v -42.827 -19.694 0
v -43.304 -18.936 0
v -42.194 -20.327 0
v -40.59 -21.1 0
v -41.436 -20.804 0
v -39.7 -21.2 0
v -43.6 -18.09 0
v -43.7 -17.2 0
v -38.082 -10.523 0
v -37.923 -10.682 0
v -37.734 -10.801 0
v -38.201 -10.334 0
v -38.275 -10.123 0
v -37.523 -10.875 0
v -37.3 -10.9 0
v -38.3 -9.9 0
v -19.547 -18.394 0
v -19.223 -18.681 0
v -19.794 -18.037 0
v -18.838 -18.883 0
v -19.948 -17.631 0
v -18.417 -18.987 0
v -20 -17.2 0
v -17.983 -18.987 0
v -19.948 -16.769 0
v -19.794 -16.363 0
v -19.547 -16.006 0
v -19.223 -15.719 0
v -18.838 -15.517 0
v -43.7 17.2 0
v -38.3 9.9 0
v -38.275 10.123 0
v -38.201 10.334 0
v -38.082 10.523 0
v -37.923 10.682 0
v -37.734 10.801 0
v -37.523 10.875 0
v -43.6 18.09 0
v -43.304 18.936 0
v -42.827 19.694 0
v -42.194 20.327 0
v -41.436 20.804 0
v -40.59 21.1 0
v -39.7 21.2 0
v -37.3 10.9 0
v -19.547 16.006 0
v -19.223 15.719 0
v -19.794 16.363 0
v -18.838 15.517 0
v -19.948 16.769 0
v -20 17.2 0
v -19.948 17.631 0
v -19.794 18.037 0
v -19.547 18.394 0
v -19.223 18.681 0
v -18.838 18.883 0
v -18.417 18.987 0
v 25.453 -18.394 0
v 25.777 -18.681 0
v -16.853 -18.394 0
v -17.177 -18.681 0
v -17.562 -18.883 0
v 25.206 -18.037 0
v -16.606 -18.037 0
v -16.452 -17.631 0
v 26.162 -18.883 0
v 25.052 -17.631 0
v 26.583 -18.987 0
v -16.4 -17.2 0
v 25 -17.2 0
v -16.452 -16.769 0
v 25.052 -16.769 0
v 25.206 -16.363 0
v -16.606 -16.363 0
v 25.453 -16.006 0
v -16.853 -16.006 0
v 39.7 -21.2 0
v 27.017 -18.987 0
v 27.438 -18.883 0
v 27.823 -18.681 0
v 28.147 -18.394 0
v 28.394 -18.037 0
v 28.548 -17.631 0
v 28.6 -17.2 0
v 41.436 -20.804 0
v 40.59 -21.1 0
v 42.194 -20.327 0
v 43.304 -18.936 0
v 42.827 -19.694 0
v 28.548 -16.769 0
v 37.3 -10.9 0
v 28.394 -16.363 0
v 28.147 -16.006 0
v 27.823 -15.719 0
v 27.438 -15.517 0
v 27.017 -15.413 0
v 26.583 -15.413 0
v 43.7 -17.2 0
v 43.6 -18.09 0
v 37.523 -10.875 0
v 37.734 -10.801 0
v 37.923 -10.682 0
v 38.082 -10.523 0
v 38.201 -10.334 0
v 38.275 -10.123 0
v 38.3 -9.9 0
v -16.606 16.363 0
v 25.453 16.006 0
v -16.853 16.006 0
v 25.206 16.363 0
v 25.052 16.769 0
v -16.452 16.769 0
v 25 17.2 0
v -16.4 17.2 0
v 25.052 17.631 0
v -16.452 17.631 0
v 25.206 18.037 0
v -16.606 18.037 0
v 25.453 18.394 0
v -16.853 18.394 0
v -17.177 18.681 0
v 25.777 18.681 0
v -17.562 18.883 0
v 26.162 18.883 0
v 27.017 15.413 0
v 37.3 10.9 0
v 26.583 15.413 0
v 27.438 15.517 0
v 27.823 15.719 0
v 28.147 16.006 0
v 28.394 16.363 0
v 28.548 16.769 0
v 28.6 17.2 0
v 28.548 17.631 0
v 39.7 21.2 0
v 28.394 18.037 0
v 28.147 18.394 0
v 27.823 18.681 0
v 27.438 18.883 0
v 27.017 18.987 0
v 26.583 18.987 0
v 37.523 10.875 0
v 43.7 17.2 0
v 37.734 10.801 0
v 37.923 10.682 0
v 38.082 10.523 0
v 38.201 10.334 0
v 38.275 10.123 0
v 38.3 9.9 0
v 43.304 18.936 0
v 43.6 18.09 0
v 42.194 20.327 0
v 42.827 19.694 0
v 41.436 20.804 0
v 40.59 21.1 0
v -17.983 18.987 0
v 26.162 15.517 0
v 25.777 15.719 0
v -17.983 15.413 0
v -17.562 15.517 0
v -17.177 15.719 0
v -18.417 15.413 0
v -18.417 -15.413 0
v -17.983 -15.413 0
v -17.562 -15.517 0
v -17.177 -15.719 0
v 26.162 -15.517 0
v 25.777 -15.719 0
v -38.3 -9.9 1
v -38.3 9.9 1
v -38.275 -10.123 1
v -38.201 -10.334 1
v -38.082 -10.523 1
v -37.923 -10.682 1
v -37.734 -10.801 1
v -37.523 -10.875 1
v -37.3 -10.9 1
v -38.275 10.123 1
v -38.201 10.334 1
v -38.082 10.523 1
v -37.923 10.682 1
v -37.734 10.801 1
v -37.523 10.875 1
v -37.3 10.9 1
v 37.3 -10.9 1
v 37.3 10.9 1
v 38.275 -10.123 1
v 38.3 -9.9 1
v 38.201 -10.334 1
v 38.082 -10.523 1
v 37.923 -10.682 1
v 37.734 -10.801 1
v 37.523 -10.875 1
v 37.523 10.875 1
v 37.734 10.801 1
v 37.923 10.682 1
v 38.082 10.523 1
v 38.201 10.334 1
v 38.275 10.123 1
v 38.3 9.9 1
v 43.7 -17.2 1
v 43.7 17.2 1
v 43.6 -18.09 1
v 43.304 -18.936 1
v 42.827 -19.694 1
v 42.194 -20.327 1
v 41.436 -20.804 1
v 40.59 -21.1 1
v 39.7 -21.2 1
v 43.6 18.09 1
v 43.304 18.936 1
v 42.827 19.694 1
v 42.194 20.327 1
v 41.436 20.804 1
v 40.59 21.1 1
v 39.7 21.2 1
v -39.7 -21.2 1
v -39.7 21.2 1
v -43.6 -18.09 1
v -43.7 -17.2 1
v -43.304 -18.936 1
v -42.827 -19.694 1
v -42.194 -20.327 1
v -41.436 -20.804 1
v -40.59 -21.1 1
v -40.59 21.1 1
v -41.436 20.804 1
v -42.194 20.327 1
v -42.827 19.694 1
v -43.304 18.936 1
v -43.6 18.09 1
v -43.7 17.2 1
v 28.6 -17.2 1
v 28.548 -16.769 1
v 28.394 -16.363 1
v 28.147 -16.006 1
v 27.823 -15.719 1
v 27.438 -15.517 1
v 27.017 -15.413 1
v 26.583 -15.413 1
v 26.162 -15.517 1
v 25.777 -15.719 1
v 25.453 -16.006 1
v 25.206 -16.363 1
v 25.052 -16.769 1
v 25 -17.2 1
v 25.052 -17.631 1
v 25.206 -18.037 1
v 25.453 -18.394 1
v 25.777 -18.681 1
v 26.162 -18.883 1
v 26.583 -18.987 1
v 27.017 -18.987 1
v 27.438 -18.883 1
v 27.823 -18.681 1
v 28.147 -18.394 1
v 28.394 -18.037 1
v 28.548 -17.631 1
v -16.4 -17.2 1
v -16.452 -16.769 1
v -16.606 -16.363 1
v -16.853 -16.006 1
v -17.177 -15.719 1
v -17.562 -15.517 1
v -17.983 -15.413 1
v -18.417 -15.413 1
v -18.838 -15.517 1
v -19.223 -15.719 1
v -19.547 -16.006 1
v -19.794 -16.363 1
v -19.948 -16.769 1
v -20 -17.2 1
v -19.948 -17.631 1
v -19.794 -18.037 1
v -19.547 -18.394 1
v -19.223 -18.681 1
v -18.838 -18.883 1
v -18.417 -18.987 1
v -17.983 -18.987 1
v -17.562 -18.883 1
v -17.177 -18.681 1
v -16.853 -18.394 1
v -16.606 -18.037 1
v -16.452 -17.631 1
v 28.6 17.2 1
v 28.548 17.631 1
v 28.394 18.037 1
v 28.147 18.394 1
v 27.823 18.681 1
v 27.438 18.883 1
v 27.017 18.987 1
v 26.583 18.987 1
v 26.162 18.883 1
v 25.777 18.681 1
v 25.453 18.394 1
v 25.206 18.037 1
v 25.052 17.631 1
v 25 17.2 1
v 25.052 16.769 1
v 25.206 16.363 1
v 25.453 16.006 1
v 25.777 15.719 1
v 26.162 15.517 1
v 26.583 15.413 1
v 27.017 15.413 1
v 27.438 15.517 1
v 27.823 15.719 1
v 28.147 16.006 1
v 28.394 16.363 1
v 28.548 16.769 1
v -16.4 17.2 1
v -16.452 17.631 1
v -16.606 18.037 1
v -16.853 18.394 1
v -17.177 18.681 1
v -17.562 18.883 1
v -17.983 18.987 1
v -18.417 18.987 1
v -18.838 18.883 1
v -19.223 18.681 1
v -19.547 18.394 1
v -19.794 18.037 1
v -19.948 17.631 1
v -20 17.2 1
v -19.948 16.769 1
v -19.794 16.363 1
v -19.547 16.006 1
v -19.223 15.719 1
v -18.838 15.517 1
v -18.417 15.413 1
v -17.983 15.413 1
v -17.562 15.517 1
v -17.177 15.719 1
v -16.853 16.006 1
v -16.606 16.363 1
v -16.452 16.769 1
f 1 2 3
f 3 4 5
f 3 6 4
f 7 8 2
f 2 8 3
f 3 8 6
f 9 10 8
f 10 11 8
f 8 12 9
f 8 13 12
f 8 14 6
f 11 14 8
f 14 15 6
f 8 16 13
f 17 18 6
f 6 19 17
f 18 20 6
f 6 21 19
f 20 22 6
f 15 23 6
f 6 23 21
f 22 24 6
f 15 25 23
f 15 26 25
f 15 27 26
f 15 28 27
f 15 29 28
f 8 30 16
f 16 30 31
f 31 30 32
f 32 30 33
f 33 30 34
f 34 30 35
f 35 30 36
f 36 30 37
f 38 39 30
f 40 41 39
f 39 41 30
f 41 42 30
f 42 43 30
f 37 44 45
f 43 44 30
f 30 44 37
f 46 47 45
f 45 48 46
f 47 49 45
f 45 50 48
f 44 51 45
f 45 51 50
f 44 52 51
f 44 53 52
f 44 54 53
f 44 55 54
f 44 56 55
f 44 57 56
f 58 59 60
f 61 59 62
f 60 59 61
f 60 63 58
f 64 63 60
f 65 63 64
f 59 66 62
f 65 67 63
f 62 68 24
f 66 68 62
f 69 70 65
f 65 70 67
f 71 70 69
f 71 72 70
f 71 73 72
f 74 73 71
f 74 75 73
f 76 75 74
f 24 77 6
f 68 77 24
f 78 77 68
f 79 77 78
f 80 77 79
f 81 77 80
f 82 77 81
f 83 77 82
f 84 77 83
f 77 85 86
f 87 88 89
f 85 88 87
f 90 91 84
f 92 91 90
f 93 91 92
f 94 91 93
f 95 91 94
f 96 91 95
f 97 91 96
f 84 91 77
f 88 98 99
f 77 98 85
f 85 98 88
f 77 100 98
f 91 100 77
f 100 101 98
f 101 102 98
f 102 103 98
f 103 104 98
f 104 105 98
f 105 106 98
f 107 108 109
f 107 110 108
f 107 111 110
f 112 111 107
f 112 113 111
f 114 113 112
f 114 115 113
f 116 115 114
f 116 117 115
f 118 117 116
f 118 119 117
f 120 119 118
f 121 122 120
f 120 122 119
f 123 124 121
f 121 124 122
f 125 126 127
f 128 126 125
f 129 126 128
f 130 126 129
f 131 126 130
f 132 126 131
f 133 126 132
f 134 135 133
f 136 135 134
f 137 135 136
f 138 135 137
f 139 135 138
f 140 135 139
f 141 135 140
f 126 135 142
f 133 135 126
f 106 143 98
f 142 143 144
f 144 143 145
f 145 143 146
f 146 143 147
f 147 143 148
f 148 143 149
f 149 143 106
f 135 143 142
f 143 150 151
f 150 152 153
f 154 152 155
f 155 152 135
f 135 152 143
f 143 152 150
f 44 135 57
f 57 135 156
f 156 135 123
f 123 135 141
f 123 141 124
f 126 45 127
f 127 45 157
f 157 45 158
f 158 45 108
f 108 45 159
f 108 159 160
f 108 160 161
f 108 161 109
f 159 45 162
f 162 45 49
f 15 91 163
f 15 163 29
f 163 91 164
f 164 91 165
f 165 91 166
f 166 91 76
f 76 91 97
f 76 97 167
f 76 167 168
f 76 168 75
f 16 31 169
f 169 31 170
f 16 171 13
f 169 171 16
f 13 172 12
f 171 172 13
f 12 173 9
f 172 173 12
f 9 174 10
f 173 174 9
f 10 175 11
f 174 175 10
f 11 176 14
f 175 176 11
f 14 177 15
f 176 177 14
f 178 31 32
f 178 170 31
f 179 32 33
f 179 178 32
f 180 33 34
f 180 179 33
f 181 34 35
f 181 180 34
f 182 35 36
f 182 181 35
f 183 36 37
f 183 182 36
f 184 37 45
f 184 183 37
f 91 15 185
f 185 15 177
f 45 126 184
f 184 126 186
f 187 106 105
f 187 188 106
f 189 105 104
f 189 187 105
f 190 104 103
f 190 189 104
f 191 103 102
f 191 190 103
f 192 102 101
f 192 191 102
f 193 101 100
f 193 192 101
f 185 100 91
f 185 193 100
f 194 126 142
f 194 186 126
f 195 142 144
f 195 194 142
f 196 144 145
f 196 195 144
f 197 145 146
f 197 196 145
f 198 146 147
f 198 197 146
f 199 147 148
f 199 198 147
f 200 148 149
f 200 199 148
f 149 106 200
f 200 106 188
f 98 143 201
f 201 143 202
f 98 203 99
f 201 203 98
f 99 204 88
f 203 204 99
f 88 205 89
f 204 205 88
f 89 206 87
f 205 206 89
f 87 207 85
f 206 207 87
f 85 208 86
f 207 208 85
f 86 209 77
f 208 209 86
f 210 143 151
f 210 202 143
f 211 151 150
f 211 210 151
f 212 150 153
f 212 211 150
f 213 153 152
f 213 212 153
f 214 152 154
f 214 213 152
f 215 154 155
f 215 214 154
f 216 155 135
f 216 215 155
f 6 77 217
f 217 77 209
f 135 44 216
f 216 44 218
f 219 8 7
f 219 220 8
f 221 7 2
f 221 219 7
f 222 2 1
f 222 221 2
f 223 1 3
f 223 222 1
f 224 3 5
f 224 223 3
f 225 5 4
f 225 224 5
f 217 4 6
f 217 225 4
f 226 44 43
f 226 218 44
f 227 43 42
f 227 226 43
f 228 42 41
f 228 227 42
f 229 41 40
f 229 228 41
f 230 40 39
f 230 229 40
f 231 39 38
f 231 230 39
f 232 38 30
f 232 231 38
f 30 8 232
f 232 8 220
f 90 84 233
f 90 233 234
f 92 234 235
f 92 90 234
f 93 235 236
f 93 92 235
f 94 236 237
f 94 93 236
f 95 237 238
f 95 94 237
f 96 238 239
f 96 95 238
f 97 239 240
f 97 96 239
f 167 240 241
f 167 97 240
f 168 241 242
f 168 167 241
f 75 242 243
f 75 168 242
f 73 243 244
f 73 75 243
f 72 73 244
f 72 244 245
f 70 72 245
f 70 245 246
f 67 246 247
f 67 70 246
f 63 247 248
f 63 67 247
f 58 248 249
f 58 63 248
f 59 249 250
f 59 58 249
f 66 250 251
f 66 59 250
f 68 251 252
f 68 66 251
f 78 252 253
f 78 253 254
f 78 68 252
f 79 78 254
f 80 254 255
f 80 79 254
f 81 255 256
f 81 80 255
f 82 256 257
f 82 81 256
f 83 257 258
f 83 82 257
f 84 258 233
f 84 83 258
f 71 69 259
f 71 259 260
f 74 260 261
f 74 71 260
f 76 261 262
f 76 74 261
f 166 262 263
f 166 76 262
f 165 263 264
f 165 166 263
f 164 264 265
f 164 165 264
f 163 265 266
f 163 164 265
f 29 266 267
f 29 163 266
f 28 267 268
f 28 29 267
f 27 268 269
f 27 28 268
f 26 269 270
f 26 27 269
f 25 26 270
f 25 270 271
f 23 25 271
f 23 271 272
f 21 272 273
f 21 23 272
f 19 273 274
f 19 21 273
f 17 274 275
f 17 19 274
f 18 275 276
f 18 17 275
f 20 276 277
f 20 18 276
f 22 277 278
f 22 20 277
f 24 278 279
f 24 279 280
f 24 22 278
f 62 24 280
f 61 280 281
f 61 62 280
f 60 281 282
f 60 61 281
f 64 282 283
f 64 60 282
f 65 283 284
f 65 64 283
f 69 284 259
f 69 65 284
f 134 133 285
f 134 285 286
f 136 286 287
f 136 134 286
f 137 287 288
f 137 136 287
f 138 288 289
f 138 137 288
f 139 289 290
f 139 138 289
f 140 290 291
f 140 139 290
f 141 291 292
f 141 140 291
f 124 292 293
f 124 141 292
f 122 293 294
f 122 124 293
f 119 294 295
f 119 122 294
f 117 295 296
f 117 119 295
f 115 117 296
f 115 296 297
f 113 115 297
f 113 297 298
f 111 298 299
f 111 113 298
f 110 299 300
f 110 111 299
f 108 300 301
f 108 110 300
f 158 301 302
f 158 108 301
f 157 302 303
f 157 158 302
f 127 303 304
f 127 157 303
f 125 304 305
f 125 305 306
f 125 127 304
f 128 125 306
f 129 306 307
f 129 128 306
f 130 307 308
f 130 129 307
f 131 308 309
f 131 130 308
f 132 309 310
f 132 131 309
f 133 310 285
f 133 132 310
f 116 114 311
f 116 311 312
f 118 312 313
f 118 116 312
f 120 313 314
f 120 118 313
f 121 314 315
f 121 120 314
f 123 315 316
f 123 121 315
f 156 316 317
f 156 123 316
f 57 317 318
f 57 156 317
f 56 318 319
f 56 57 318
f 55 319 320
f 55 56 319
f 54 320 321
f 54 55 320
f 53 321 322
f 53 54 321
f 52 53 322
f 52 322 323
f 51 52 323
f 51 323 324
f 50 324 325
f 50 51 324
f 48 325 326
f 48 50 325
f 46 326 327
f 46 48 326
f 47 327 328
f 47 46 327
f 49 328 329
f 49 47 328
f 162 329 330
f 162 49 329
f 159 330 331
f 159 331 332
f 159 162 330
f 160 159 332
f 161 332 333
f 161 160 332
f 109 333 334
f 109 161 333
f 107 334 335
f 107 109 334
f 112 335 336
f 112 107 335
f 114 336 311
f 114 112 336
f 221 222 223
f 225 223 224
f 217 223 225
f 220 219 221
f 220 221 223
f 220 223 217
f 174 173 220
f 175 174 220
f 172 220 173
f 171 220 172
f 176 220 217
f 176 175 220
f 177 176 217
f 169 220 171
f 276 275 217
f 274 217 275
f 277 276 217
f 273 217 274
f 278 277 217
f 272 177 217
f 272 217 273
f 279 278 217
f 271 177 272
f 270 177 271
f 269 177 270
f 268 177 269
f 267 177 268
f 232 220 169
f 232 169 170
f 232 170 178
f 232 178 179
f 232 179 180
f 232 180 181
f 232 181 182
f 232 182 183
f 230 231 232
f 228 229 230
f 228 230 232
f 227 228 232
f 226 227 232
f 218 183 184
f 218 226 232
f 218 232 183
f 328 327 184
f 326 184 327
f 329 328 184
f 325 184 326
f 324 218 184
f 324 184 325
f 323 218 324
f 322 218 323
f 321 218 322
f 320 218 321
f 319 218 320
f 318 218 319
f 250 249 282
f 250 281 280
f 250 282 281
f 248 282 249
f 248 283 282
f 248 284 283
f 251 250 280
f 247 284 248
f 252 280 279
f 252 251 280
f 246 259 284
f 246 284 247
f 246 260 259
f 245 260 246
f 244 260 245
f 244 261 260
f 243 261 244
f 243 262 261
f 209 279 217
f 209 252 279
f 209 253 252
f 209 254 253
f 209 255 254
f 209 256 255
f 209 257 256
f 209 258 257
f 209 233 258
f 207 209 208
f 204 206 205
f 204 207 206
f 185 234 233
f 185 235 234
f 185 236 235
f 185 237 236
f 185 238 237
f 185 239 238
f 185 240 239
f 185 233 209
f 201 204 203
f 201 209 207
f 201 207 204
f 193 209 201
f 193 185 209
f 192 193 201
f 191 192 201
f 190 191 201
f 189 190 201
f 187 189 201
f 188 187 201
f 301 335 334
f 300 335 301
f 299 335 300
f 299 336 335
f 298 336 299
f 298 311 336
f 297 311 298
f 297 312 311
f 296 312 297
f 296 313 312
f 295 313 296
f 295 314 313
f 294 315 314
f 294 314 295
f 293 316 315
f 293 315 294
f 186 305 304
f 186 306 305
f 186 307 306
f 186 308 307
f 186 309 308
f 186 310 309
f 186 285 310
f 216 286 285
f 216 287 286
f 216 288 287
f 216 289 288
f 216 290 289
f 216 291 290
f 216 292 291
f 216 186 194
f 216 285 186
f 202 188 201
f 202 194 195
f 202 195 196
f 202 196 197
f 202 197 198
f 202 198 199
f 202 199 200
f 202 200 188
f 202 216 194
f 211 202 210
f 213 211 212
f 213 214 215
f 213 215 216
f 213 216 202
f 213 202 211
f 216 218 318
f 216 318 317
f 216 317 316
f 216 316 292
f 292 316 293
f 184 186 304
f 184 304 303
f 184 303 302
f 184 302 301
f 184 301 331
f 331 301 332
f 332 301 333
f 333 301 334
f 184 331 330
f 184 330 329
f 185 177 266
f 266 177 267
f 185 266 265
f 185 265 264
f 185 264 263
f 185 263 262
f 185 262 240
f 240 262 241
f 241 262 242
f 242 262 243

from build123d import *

# Parameters (mm, degrees)
SKETCH_W    = 87.4
SKETCH_H    = 42.4
SKETCH_R    = 1.8
SKETCH_W_2  = 76.6
SKETCH_H_2  = 21.8
PAD_DEPTH   = 1
FILLET_R    = 4
FILLET001_R = 1


with BuildPart() as part:
    # Sketch → Pad (new body)
    with BuildSketch(Plane.XY):
        Rectangle(SKETCH_W, SKETCH_H)
        with Locations((-18.2, 17.2)):
            Circle(SKETCH_R, mode=Mode.SUBTRACT)
        with Locations((-18.2, -17.2)):
            Circle(SKETCH_R, mode=Mode.SUBTRACT)
        with Locations((26.8, -17.2)):
            Circle(SKETCH_R, mode=Mode.SUBTRACT)
        with Locations((26.8, 17.2)):
            Circle(SKETCH_R, mode=Mode.SUBTRACT)
        Rectangle(SKETCH_W_2, SKETCH_H_2, mode=Mode.SUBTRACT)
    extrude(amount=PAD_DEPTH)

    # Fillet
    fillet_edges = [part.edges().sort_by_distance(p)[0] for p in [
        (43.7, -21.2, 0.5),
        (-43.7, -21.2, 0.5),
        (43.7, 21.2, 0.5),
        (-43.7, 21.2, 0.5),
    ]]
    fillet(fillet_edges, radius=FILLET_R)

    # Fillet001
    fillet001_edges = [part.edges().sort_by_distance(p)[0] for p in [
        (38.3, 10.9, 0.5),
        (38.3, -10.9, 0.5),
        (-38.3, -10.9, 0.5),
        (-38.3, 10.9, 0.5),
    ]]
    fillet(fillet001_edges, radius=FILLET001_R)


solid = part.part
